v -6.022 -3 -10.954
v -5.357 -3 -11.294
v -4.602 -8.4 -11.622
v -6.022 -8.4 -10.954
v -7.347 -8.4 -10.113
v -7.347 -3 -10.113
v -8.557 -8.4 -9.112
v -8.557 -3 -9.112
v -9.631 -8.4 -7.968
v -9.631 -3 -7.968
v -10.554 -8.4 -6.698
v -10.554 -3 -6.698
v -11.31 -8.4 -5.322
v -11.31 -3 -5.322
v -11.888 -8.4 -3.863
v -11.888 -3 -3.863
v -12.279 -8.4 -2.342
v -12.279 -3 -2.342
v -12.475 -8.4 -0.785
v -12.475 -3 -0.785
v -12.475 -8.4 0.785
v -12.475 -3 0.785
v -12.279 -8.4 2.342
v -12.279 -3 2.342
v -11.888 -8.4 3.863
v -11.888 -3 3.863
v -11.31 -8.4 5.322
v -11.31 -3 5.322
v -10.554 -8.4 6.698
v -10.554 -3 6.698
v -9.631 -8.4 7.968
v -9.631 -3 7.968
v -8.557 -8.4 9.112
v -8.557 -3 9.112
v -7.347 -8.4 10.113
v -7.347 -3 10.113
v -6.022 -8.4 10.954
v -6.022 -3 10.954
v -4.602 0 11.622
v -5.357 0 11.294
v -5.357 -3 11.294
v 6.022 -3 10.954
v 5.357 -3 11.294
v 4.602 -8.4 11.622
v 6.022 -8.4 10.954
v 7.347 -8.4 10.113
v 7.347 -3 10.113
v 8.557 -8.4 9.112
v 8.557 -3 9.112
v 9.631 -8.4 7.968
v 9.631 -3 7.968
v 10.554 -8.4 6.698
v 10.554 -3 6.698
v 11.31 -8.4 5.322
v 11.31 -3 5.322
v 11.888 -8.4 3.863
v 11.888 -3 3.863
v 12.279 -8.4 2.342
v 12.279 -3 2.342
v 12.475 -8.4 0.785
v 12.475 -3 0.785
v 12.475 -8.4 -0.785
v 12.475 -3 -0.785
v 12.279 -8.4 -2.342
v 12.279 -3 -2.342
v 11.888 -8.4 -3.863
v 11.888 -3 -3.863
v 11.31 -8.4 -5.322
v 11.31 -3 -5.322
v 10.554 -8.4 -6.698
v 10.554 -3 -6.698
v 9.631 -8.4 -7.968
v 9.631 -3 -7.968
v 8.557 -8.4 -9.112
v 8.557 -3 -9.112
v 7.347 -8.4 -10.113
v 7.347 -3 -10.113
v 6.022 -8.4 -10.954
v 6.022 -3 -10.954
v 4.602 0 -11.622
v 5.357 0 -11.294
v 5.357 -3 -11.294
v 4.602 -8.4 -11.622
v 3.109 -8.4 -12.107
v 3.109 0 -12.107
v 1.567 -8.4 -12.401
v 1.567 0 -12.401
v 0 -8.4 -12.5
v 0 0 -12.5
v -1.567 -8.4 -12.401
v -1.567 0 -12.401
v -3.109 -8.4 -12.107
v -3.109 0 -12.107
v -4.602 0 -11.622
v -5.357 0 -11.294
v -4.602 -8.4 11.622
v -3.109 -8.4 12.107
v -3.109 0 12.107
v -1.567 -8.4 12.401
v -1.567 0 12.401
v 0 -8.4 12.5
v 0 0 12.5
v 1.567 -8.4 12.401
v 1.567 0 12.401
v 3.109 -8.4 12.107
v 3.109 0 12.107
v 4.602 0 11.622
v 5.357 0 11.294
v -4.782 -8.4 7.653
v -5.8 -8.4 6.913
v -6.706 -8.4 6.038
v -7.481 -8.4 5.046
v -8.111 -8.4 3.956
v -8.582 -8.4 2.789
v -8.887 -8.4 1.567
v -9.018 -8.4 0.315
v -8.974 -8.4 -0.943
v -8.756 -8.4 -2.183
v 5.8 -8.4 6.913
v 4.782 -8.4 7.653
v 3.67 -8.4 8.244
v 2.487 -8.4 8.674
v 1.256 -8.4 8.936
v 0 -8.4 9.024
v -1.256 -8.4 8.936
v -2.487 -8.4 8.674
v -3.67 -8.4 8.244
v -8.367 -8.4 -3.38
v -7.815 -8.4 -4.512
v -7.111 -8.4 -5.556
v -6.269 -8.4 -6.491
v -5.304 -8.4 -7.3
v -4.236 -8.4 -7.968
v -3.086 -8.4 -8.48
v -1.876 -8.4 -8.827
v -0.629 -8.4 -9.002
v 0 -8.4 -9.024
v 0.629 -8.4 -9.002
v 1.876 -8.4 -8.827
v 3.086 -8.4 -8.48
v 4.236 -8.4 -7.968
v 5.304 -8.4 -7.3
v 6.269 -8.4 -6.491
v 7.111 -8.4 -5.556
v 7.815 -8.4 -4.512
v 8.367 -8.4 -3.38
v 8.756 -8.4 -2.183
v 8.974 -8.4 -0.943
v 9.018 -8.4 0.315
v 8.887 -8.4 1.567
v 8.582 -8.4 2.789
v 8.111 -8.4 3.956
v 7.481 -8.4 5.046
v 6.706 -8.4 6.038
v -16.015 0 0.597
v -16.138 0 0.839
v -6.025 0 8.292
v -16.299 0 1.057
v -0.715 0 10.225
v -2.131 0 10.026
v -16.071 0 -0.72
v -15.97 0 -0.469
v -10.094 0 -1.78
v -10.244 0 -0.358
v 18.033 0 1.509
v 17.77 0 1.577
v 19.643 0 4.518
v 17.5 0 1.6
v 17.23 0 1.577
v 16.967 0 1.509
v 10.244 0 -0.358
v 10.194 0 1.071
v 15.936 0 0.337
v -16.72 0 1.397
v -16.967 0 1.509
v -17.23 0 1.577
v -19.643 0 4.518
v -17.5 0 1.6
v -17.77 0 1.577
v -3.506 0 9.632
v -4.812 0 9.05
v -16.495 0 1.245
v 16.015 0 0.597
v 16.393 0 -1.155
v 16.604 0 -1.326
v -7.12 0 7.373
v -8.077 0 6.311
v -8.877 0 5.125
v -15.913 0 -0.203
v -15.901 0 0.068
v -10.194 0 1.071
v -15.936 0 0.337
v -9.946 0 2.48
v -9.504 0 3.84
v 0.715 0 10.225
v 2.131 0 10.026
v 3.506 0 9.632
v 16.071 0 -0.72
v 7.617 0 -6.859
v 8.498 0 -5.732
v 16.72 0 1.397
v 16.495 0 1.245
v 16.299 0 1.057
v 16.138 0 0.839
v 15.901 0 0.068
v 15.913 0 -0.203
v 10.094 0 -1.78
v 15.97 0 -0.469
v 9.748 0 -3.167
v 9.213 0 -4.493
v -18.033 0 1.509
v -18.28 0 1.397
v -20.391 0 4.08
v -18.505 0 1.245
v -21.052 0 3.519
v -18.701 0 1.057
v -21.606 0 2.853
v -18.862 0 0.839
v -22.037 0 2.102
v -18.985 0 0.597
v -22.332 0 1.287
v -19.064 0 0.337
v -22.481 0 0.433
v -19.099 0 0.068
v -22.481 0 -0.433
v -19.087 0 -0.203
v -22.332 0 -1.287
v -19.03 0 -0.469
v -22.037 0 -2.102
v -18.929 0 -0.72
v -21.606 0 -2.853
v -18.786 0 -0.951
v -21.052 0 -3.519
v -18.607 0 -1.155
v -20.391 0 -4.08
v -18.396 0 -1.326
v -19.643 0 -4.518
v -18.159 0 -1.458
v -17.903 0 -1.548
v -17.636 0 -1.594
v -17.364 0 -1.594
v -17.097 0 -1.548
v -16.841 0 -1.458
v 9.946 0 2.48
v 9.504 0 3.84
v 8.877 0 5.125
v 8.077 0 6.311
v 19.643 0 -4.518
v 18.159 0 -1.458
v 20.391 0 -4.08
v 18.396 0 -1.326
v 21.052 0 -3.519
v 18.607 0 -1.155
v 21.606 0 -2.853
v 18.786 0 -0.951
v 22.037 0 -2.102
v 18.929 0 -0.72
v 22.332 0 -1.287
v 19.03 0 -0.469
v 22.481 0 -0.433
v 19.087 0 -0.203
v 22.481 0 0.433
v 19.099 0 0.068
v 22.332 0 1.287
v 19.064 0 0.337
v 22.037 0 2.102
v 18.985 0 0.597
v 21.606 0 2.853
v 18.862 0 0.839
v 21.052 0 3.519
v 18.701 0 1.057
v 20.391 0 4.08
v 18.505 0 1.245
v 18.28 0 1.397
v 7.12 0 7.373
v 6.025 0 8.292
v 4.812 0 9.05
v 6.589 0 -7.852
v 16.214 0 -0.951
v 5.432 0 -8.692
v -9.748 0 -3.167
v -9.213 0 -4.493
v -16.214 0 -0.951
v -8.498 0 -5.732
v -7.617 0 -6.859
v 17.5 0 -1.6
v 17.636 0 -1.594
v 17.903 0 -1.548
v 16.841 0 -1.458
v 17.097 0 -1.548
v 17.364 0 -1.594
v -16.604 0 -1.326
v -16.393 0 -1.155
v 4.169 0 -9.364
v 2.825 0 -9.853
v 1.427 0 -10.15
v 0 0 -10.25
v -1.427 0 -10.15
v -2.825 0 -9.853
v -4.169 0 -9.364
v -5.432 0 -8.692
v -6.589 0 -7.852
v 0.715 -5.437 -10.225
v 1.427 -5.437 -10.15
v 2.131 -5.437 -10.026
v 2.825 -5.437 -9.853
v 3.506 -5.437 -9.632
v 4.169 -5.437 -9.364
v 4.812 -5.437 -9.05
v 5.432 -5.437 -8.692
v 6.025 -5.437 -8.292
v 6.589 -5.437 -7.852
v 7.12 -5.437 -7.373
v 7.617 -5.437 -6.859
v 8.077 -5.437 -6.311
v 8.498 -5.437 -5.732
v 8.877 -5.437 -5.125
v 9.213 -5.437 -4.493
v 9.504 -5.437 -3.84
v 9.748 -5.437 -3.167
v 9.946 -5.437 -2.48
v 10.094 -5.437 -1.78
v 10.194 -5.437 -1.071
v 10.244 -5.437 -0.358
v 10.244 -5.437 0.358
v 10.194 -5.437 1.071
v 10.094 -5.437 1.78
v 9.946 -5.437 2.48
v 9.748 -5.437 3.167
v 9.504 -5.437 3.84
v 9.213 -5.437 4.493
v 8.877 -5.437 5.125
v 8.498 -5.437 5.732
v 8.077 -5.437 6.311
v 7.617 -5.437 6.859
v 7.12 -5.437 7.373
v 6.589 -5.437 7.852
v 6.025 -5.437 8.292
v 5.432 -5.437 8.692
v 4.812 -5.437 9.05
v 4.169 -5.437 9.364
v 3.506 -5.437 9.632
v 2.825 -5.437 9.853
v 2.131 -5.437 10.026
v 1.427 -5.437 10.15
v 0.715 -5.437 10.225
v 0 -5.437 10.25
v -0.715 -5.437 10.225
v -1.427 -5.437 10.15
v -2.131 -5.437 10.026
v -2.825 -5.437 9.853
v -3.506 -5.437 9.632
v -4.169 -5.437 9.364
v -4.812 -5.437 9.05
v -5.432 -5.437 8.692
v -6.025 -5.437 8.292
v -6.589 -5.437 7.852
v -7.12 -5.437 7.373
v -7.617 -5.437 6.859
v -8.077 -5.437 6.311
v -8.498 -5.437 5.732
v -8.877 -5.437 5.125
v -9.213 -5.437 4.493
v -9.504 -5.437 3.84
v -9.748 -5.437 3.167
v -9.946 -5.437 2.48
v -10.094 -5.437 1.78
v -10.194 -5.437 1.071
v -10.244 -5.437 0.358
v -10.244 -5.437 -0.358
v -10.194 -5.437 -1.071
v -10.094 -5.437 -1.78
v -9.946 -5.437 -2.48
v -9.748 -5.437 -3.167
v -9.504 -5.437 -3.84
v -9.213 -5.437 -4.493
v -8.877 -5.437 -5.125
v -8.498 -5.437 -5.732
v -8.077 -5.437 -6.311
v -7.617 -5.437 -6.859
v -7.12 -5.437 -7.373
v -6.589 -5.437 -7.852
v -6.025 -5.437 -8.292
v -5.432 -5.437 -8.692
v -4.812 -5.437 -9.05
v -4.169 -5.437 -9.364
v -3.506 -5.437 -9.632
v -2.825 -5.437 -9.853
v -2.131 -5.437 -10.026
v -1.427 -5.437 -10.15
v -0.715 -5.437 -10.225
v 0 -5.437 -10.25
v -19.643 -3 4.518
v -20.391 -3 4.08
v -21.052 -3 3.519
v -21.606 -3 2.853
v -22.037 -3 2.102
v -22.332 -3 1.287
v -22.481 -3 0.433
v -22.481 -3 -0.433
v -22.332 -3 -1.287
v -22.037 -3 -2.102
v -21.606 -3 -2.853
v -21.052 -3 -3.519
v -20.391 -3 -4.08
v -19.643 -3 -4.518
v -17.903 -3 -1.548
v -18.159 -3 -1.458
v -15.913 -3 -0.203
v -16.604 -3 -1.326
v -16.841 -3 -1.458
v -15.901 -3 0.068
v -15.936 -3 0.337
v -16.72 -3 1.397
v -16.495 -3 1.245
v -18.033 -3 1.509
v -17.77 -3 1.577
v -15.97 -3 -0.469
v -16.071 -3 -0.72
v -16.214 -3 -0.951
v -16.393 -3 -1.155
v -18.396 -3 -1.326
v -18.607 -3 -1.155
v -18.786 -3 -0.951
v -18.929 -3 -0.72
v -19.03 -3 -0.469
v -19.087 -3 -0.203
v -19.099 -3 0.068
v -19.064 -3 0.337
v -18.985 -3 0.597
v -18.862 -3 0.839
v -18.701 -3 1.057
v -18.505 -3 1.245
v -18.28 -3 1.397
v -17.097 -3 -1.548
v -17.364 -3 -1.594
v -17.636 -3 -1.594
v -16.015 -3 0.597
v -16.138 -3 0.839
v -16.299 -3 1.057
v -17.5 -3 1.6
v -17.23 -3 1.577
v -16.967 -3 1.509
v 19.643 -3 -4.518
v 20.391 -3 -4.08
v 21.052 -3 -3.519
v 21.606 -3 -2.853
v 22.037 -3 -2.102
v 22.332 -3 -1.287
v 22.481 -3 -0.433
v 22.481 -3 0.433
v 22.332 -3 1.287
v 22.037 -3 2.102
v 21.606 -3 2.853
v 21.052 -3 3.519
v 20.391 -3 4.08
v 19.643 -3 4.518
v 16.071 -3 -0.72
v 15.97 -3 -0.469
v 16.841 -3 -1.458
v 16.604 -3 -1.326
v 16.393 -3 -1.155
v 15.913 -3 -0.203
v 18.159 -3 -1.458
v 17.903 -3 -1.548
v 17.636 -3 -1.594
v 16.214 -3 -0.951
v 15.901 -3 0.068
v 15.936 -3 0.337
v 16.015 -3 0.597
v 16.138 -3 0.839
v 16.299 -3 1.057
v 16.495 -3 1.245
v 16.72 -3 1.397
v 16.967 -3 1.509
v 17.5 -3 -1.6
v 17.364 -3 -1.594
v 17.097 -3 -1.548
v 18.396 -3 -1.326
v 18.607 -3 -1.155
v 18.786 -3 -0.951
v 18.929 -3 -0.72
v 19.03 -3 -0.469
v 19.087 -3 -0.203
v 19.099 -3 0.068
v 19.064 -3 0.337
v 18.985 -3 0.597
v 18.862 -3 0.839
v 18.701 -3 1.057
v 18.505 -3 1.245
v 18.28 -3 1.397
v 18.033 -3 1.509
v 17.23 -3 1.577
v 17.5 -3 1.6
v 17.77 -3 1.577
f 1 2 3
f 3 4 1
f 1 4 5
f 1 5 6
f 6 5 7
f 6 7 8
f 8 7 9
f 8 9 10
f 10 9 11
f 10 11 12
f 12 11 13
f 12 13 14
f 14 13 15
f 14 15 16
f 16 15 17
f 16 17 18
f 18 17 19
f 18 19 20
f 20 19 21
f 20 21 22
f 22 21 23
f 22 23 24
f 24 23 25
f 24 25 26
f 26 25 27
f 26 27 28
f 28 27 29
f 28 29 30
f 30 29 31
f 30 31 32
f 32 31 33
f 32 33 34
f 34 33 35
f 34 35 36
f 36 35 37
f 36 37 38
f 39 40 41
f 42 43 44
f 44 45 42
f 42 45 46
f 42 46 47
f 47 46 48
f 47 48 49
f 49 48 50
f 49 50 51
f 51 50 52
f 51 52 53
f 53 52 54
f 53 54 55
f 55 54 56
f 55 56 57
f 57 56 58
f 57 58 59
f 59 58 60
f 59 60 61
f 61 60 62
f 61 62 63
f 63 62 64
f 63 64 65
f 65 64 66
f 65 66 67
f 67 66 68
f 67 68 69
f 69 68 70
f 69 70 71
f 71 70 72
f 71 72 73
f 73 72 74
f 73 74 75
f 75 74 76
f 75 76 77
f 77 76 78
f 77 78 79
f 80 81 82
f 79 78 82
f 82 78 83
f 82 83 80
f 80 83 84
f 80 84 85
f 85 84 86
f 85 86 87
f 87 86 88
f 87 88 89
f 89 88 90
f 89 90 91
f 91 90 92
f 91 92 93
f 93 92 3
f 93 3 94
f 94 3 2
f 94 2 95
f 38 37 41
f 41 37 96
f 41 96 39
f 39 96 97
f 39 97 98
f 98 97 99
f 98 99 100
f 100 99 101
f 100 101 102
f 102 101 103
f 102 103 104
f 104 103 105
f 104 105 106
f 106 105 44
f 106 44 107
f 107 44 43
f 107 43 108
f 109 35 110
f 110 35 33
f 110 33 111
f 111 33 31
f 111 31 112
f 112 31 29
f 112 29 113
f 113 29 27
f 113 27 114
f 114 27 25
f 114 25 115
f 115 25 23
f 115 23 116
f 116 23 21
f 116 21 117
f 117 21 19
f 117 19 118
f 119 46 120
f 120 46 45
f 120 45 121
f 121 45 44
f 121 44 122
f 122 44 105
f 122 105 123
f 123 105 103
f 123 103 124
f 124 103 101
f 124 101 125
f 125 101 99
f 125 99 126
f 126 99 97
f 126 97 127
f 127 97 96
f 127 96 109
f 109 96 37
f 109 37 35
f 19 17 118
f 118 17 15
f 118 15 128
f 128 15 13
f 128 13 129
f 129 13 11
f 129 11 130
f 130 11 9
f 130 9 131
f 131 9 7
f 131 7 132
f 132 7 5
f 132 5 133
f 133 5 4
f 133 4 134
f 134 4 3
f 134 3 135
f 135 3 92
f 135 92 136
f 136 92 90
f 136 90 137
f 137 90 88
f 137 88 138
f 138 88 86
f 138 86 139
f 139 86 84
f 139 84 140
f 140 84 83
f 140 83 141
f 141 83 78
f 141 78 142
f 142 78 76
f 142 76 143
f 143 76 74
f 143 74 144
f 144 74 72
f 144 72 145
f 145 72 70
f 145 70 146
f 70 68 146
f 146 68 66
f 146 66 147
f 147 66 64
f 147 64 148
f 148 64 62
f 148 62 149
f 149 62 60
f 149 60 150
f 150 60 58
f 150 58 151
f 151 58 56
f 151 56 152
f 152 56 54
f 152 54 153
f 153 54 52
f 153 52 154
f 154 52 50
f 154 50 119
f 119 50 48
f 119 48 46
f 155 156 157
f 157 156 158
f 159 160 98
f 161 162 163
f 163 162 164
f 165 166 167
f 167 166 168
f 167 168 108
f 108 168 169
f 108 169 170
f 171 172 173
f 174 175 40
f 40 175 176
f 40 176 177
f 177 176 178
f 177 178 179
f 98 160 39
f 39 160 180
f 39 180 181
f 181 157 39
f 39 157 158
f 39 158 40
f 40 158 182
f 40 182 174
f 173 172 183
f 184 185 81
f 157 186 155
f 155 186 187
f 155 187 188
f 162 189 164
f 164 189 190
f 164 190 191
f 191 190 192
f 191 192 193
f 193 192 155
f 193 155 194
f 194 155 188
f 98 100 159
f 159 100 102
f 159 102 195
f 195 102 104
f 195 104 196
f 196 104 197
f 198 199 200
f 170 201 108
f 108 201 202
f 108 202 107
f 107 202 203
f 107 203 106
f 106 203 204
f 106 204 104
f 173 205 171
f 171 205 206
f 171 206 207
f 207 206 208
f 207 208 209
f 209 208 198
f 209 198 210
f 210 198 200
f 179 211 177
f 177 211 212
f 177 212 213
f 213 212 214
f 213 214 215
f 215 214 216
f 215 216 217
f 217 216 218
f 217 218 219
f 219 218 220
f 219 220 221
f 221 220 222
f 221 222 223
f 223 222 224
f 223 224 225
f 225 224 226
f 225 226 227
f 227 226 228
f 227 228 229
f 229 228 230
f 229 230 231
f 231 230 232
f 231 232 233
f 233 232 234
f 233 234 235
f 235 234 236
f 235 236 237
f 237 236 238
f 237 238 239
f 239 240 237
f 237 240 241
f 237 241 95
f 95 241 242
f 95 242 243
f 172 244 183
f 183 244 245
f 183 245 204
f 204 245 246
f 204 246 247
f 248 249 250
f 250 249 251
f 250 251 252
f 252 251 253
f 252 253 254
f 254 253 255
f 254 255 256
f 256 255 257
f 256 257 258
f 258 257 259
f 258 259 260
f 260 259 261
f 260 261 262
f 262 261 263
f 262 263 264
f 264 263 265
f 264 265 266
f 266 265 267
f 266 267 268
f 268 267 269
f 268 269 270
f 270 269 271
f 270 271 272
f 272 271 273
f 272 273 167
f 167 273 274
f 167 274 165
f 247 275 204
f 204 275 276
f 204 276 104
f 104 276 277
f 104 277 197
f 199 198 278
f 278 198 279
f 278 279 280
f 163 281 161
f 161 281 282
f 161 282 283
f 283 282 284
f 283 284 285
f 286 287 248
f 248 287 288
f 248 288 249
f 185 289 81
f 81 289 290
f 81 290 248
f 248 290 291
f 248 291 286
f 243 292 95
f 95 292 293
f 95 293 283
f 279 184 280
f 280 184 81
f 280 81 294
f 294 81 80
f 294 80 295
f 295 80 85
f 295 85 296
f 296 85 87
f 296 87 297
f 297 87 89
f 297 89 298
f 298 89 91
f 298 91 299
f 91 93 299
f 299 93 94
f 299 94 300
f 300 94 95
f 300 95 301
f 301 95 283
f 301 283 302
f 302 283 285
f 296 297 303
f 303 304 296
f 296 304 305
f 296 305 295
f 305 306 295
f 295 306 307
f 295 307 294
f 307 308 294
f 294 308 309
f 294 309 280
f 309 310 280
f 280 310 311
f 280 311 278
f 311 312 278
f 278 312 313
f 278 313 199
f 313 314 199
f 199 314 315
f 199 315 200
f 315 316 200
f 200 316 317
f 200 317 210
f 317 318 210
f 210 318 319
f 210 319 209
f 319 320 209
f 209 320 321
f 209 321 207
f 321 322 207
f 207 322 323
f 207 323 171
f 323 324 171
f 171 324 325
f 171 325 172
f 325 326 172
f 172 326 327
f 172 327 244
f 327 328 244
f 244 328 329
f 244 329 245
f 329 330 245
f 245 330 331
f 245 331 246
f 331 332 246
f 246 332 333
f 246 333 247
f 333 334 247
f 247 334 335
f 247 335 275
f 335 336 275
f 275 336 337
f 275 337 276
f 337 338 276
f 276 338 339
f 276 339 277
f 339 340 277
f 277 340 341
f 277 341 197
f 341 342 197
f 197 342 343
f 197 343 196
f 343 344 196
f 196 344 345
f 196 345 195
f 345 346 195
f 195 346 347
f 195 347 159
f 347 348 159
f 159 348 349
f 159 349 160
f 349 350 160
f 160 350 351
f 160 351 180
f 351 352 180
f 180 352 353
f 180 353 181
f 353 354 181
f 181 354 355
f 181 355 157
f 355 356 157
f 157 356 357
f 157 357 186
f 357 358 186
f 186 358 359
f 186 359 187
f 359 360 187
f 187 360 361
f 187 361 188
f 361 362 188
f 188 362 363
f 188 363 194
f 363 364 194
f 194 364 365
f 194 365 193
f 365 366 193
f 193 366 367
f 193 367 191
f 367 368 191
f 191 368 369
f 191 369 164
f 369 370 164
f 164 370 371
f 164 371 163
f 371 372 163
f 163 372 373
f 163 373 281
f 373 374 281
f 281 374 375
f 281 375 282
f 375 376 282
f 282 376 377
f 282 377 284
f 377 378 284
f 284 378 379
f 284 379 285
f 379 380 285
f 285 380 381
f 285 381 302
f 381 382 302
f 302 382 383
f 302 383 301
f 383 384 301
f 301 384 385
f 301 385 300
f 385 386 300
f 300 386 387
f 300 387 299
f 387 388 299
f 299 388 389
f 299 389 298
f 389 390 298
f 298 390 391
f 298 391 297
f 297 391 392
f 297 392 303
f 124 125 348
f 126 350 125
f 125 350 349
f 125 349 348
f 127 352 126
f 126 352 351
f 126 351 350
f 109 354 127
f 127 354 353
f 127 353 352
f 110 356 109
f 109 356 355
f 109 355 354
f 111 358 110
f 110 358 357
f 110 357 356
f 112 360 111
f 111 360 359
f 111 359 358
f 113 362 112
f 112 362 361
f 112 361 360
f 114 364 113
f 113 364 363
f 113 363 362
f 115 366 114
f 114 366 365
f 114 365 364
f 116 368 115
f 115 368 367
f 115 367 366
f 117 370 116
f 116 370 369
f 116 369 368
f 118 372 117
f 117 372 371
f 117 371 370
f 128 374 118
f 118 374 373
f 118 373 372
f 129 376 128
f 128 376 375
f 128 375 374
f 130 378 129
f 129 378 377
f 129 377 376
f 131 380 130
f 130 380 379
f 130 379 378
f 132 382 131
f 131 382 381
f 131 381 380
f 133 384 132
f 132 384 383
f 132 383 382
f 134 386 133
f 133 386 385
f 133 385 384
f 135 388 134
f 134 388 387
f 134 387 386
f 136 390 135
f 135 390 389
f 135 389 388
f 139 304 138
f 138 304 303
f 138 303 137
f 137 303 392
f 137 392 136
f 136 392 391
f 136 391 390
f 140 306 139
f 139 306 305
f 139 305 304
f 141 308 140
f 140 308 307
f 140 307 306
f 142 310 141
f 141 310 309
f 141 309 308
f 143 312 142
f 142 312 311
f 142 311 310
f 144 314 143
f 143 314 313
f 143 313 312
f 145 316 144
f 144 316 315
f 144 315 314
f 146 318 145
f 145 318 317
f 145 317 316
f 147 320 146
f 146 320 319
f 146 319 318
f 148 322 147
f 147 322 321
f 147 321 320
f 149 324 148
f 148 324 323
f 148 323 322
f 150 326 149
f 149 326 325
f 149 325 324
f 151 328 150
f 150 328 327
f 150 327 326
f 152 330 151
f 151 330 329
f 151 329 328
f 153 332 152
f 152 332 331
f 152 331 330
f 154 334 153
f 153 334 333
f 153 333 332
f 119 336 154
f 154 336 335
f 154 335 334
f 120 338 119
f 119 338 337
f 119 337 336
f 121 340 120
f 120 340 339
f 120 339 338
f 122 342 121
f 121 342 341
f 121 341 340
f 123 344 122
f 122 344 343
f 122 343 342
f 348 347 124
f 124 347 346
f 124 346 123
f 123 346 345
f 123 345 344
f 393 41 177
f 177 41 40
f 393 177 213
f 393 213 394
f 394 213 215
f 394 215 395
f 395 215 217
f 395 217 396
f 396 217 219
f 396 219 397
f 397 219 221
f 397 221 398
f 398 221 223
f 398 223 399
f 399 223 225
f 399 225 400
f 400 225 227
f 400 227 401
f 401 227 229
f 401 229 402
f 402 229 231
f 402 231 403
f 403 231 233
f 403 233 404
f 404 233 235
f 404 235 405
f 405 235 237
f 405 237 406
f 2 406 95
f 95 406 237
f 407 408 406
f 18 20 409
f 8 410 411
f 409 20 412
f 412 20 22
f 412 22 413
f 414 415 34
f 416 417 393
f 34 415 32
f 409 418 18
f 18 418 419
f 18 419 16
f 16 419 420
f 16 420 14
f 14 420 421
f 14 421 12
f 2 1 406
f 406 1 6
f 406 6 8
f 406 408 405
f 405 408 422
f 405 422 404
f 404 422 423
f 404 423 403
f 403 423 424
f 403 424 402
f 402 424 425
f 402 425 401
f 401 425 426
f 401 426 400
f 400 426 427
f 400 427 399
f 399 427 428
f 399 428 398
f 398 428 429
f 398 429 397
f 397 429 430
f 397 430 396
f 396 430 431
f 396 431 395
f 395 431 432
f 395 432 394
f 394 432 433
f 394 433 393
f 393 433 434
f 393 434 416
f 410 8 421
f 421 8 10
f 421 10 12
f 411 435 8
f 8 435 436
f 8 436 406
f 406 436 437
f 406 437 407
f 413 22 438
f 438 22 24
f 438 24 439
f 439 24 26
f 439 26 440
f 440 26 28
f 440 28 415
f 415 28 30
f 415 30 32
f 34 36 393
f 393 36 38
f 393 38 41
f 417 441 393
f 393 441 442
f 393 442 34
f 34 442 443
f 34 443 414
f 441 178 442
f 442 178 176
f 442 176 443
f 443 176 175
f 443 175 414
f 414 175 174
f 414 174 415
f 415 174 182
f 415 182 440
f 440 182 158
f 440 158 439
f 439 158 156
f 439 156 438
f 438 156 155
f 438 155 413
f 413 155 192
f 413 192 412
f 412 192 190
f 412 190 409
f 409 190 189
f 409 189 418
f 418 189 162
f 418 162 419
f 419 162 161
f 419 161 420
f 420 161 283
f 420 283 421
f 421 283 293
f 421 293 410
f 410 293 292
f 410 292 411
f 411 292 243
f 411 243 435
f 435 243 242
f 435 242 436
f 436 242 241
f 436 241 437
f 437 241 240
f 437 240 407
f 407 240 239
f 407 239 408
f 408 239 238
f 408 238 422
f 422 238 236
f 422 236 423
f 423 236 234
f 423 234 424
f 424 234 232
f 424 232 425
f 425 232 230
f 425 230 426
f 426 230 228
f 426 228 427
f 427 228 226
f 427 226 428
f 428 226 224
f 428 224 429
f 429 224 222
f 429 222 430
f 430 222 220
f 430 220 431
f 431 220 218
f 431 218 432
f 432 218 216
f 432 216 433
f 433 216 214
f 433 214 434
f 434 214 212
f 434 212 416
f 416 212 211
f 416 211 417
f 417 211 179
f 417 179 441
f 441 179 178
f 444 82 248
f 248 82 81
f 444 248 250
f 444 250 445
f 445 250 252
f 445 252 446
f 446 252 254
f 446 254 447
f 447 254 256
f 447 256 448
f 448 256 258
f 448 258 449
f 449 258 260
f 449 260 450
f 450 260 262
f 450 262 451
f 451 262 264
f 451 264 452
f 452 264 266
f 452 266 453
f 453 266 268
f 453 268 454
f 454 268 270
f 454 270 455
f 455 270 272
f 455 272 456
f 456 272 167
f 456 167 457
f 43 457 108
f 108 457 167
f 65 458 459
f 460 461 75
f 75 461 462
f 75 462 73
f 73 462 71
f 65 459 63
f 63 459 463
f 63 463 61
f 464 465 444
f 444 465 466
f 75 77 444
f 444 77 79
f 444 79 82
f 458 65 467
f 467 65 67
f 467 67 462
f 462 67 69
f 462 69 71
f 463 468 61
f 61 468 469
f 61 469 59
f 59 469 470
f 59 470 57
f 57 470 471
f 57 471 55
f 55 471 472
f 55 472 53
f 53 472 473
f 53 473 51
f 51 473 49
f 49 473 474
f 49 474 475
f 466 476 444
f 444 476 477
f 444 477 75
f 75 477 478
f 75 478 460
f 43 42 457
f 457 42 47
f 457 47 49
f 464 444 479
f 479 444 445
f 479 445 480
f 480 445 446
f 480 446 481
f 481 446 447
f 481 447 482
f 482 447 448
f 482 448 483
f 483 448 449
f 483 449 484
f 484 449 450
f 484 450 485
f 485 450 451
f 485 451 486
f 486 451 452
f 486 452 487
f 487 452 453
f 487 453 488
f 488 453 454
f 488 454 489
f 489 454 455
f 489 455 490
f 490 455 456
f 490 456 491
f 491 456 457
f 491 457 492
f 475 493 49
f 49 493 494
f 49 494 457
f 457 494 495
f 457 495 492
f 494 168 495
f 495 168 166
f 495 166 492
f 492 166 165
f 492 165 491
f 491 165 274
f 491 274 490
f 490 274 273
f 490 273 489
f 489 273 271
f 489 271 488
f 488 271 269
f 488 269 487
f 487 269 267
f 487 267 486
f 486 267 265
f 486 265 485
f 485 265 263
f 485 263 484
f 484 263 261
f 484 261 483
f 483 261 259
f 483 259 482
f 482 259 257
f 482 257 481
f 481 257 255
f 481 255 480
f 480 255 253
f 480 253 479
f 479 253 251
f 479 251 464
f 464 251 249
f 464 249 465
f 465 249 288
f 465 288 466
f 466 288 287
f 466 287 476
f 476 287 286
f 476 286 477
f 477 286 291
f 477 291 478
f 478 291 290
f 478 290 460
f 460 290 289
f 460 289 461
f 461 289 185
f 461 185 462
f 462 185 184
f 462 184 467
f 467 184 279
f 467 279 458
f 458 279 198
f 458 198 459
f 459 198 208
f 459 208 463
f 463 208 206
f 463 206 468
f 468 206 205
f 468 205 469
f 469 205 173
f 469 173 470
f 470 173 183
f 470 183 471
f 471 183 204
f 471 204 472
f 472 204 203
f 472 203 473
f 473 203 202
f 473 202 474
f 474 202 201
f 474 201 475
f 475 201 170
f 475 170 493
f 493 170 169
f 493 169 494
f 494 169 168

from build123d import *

# Parameters (mm, degrees)
SKETCH1_R               = 12.5
BOSS_EXTRUDE1_DEPTH     = 8.4
SKETCH2_R               = 10.25
CUT_EXTRUDE1_DEPTH      = 1
CUT_EXTRUDE1_DEPTH_BACK = 9.4
SKETCH4_R               = 1.6
BOSS_EXTRUDE2_DEPTH     = 3


with BuildPart() as part:
    # Sketch1 → Boss-Extrude1 (new body)
    with BuildSketch(Plane(origin=(0, 0, 0), x_dir=(1, 0, 0), z_dir=(0, 1, 0))):
        Circle(SKETCH1_R)
    extrude(amount=-BOSS_EXTRUDE1_DEPTH)

    # Sketch2 → Cut-Extrude1 (cut, two sides)
    with BuildSketch(Plane.XZ.offset(8.4)) as cut_extrude1_sk:
        Circle(SKETCH2_R)
    extrude(amount=CUT_EXTRUDE1_DEPTH, mode=Mode.SUBTRACT)
    extrude(cut_extrude1_sk.sketch, amount=-CUT_EXTRUDE1_DEPTH_BACK, mode=Mode.SUBTRACT)

    # Sketch3 → Revolve1 (revolve)
    with BuildSketch(Plane(origin=(0, 0, 0), x_dir=(0, 0, -1), z_dir=(1, 0, 0))):
        Polygon((9.023871751, -8.4), (12.5, 0), (12.5, -8.4), align=None)
    revolve(axis=Axis((0, -24.717, 0), (0, 1, 0)))

    # Sketch4 → Boss-Extrude2 (add)
    with BuildSketch(Plane(origin=(0, 0, 0), x_dir=(1, 0, 0), z_dir=(0, 1, 0))):
        with BuildLine():
            Line((-5.357142857, 11.293848786), (-19.642857143, 4.517539515))
            ThreePointArc((-19.642857143, 4.517539515), (-22.5, 0), (-19.642857143, -4.517539515))
            Line((-19.642857143, -4.517539515), (-5.357142857, -11.293848786))
            ThreePointArc((-5.357142857, -11.293848786), (-12.5, 0), (-5.357142857, 11.293848786))
        make_face()
        with Locations((-17.5, 0)):
            Circle(SKETCH4_R, mode=Mode.SUBTRACT)
        with BuildLine():
            Line((5.357142857, -11.293848786), (19.642857143, -4.517539515))
            ThreePointArc((19.642857143, -4.517539515), (22.5, 0), (19.642857143, 4.517539515))
            Line((19.642857143, 4.517539515), (5.357142857, 11.293848786))
            ThreePointArc((5.357142857, 11.293848786), (12.5, 0), (5.357142857, -11.293848786))
        make_face()
        with Locations((17.5, 0)):
            Circle(SKETCH4_R, mode=Mode.SUBTRACT)
    extrude(amount=-BOSS_EXTRUDE2_DEPTH)


solid = part.part
